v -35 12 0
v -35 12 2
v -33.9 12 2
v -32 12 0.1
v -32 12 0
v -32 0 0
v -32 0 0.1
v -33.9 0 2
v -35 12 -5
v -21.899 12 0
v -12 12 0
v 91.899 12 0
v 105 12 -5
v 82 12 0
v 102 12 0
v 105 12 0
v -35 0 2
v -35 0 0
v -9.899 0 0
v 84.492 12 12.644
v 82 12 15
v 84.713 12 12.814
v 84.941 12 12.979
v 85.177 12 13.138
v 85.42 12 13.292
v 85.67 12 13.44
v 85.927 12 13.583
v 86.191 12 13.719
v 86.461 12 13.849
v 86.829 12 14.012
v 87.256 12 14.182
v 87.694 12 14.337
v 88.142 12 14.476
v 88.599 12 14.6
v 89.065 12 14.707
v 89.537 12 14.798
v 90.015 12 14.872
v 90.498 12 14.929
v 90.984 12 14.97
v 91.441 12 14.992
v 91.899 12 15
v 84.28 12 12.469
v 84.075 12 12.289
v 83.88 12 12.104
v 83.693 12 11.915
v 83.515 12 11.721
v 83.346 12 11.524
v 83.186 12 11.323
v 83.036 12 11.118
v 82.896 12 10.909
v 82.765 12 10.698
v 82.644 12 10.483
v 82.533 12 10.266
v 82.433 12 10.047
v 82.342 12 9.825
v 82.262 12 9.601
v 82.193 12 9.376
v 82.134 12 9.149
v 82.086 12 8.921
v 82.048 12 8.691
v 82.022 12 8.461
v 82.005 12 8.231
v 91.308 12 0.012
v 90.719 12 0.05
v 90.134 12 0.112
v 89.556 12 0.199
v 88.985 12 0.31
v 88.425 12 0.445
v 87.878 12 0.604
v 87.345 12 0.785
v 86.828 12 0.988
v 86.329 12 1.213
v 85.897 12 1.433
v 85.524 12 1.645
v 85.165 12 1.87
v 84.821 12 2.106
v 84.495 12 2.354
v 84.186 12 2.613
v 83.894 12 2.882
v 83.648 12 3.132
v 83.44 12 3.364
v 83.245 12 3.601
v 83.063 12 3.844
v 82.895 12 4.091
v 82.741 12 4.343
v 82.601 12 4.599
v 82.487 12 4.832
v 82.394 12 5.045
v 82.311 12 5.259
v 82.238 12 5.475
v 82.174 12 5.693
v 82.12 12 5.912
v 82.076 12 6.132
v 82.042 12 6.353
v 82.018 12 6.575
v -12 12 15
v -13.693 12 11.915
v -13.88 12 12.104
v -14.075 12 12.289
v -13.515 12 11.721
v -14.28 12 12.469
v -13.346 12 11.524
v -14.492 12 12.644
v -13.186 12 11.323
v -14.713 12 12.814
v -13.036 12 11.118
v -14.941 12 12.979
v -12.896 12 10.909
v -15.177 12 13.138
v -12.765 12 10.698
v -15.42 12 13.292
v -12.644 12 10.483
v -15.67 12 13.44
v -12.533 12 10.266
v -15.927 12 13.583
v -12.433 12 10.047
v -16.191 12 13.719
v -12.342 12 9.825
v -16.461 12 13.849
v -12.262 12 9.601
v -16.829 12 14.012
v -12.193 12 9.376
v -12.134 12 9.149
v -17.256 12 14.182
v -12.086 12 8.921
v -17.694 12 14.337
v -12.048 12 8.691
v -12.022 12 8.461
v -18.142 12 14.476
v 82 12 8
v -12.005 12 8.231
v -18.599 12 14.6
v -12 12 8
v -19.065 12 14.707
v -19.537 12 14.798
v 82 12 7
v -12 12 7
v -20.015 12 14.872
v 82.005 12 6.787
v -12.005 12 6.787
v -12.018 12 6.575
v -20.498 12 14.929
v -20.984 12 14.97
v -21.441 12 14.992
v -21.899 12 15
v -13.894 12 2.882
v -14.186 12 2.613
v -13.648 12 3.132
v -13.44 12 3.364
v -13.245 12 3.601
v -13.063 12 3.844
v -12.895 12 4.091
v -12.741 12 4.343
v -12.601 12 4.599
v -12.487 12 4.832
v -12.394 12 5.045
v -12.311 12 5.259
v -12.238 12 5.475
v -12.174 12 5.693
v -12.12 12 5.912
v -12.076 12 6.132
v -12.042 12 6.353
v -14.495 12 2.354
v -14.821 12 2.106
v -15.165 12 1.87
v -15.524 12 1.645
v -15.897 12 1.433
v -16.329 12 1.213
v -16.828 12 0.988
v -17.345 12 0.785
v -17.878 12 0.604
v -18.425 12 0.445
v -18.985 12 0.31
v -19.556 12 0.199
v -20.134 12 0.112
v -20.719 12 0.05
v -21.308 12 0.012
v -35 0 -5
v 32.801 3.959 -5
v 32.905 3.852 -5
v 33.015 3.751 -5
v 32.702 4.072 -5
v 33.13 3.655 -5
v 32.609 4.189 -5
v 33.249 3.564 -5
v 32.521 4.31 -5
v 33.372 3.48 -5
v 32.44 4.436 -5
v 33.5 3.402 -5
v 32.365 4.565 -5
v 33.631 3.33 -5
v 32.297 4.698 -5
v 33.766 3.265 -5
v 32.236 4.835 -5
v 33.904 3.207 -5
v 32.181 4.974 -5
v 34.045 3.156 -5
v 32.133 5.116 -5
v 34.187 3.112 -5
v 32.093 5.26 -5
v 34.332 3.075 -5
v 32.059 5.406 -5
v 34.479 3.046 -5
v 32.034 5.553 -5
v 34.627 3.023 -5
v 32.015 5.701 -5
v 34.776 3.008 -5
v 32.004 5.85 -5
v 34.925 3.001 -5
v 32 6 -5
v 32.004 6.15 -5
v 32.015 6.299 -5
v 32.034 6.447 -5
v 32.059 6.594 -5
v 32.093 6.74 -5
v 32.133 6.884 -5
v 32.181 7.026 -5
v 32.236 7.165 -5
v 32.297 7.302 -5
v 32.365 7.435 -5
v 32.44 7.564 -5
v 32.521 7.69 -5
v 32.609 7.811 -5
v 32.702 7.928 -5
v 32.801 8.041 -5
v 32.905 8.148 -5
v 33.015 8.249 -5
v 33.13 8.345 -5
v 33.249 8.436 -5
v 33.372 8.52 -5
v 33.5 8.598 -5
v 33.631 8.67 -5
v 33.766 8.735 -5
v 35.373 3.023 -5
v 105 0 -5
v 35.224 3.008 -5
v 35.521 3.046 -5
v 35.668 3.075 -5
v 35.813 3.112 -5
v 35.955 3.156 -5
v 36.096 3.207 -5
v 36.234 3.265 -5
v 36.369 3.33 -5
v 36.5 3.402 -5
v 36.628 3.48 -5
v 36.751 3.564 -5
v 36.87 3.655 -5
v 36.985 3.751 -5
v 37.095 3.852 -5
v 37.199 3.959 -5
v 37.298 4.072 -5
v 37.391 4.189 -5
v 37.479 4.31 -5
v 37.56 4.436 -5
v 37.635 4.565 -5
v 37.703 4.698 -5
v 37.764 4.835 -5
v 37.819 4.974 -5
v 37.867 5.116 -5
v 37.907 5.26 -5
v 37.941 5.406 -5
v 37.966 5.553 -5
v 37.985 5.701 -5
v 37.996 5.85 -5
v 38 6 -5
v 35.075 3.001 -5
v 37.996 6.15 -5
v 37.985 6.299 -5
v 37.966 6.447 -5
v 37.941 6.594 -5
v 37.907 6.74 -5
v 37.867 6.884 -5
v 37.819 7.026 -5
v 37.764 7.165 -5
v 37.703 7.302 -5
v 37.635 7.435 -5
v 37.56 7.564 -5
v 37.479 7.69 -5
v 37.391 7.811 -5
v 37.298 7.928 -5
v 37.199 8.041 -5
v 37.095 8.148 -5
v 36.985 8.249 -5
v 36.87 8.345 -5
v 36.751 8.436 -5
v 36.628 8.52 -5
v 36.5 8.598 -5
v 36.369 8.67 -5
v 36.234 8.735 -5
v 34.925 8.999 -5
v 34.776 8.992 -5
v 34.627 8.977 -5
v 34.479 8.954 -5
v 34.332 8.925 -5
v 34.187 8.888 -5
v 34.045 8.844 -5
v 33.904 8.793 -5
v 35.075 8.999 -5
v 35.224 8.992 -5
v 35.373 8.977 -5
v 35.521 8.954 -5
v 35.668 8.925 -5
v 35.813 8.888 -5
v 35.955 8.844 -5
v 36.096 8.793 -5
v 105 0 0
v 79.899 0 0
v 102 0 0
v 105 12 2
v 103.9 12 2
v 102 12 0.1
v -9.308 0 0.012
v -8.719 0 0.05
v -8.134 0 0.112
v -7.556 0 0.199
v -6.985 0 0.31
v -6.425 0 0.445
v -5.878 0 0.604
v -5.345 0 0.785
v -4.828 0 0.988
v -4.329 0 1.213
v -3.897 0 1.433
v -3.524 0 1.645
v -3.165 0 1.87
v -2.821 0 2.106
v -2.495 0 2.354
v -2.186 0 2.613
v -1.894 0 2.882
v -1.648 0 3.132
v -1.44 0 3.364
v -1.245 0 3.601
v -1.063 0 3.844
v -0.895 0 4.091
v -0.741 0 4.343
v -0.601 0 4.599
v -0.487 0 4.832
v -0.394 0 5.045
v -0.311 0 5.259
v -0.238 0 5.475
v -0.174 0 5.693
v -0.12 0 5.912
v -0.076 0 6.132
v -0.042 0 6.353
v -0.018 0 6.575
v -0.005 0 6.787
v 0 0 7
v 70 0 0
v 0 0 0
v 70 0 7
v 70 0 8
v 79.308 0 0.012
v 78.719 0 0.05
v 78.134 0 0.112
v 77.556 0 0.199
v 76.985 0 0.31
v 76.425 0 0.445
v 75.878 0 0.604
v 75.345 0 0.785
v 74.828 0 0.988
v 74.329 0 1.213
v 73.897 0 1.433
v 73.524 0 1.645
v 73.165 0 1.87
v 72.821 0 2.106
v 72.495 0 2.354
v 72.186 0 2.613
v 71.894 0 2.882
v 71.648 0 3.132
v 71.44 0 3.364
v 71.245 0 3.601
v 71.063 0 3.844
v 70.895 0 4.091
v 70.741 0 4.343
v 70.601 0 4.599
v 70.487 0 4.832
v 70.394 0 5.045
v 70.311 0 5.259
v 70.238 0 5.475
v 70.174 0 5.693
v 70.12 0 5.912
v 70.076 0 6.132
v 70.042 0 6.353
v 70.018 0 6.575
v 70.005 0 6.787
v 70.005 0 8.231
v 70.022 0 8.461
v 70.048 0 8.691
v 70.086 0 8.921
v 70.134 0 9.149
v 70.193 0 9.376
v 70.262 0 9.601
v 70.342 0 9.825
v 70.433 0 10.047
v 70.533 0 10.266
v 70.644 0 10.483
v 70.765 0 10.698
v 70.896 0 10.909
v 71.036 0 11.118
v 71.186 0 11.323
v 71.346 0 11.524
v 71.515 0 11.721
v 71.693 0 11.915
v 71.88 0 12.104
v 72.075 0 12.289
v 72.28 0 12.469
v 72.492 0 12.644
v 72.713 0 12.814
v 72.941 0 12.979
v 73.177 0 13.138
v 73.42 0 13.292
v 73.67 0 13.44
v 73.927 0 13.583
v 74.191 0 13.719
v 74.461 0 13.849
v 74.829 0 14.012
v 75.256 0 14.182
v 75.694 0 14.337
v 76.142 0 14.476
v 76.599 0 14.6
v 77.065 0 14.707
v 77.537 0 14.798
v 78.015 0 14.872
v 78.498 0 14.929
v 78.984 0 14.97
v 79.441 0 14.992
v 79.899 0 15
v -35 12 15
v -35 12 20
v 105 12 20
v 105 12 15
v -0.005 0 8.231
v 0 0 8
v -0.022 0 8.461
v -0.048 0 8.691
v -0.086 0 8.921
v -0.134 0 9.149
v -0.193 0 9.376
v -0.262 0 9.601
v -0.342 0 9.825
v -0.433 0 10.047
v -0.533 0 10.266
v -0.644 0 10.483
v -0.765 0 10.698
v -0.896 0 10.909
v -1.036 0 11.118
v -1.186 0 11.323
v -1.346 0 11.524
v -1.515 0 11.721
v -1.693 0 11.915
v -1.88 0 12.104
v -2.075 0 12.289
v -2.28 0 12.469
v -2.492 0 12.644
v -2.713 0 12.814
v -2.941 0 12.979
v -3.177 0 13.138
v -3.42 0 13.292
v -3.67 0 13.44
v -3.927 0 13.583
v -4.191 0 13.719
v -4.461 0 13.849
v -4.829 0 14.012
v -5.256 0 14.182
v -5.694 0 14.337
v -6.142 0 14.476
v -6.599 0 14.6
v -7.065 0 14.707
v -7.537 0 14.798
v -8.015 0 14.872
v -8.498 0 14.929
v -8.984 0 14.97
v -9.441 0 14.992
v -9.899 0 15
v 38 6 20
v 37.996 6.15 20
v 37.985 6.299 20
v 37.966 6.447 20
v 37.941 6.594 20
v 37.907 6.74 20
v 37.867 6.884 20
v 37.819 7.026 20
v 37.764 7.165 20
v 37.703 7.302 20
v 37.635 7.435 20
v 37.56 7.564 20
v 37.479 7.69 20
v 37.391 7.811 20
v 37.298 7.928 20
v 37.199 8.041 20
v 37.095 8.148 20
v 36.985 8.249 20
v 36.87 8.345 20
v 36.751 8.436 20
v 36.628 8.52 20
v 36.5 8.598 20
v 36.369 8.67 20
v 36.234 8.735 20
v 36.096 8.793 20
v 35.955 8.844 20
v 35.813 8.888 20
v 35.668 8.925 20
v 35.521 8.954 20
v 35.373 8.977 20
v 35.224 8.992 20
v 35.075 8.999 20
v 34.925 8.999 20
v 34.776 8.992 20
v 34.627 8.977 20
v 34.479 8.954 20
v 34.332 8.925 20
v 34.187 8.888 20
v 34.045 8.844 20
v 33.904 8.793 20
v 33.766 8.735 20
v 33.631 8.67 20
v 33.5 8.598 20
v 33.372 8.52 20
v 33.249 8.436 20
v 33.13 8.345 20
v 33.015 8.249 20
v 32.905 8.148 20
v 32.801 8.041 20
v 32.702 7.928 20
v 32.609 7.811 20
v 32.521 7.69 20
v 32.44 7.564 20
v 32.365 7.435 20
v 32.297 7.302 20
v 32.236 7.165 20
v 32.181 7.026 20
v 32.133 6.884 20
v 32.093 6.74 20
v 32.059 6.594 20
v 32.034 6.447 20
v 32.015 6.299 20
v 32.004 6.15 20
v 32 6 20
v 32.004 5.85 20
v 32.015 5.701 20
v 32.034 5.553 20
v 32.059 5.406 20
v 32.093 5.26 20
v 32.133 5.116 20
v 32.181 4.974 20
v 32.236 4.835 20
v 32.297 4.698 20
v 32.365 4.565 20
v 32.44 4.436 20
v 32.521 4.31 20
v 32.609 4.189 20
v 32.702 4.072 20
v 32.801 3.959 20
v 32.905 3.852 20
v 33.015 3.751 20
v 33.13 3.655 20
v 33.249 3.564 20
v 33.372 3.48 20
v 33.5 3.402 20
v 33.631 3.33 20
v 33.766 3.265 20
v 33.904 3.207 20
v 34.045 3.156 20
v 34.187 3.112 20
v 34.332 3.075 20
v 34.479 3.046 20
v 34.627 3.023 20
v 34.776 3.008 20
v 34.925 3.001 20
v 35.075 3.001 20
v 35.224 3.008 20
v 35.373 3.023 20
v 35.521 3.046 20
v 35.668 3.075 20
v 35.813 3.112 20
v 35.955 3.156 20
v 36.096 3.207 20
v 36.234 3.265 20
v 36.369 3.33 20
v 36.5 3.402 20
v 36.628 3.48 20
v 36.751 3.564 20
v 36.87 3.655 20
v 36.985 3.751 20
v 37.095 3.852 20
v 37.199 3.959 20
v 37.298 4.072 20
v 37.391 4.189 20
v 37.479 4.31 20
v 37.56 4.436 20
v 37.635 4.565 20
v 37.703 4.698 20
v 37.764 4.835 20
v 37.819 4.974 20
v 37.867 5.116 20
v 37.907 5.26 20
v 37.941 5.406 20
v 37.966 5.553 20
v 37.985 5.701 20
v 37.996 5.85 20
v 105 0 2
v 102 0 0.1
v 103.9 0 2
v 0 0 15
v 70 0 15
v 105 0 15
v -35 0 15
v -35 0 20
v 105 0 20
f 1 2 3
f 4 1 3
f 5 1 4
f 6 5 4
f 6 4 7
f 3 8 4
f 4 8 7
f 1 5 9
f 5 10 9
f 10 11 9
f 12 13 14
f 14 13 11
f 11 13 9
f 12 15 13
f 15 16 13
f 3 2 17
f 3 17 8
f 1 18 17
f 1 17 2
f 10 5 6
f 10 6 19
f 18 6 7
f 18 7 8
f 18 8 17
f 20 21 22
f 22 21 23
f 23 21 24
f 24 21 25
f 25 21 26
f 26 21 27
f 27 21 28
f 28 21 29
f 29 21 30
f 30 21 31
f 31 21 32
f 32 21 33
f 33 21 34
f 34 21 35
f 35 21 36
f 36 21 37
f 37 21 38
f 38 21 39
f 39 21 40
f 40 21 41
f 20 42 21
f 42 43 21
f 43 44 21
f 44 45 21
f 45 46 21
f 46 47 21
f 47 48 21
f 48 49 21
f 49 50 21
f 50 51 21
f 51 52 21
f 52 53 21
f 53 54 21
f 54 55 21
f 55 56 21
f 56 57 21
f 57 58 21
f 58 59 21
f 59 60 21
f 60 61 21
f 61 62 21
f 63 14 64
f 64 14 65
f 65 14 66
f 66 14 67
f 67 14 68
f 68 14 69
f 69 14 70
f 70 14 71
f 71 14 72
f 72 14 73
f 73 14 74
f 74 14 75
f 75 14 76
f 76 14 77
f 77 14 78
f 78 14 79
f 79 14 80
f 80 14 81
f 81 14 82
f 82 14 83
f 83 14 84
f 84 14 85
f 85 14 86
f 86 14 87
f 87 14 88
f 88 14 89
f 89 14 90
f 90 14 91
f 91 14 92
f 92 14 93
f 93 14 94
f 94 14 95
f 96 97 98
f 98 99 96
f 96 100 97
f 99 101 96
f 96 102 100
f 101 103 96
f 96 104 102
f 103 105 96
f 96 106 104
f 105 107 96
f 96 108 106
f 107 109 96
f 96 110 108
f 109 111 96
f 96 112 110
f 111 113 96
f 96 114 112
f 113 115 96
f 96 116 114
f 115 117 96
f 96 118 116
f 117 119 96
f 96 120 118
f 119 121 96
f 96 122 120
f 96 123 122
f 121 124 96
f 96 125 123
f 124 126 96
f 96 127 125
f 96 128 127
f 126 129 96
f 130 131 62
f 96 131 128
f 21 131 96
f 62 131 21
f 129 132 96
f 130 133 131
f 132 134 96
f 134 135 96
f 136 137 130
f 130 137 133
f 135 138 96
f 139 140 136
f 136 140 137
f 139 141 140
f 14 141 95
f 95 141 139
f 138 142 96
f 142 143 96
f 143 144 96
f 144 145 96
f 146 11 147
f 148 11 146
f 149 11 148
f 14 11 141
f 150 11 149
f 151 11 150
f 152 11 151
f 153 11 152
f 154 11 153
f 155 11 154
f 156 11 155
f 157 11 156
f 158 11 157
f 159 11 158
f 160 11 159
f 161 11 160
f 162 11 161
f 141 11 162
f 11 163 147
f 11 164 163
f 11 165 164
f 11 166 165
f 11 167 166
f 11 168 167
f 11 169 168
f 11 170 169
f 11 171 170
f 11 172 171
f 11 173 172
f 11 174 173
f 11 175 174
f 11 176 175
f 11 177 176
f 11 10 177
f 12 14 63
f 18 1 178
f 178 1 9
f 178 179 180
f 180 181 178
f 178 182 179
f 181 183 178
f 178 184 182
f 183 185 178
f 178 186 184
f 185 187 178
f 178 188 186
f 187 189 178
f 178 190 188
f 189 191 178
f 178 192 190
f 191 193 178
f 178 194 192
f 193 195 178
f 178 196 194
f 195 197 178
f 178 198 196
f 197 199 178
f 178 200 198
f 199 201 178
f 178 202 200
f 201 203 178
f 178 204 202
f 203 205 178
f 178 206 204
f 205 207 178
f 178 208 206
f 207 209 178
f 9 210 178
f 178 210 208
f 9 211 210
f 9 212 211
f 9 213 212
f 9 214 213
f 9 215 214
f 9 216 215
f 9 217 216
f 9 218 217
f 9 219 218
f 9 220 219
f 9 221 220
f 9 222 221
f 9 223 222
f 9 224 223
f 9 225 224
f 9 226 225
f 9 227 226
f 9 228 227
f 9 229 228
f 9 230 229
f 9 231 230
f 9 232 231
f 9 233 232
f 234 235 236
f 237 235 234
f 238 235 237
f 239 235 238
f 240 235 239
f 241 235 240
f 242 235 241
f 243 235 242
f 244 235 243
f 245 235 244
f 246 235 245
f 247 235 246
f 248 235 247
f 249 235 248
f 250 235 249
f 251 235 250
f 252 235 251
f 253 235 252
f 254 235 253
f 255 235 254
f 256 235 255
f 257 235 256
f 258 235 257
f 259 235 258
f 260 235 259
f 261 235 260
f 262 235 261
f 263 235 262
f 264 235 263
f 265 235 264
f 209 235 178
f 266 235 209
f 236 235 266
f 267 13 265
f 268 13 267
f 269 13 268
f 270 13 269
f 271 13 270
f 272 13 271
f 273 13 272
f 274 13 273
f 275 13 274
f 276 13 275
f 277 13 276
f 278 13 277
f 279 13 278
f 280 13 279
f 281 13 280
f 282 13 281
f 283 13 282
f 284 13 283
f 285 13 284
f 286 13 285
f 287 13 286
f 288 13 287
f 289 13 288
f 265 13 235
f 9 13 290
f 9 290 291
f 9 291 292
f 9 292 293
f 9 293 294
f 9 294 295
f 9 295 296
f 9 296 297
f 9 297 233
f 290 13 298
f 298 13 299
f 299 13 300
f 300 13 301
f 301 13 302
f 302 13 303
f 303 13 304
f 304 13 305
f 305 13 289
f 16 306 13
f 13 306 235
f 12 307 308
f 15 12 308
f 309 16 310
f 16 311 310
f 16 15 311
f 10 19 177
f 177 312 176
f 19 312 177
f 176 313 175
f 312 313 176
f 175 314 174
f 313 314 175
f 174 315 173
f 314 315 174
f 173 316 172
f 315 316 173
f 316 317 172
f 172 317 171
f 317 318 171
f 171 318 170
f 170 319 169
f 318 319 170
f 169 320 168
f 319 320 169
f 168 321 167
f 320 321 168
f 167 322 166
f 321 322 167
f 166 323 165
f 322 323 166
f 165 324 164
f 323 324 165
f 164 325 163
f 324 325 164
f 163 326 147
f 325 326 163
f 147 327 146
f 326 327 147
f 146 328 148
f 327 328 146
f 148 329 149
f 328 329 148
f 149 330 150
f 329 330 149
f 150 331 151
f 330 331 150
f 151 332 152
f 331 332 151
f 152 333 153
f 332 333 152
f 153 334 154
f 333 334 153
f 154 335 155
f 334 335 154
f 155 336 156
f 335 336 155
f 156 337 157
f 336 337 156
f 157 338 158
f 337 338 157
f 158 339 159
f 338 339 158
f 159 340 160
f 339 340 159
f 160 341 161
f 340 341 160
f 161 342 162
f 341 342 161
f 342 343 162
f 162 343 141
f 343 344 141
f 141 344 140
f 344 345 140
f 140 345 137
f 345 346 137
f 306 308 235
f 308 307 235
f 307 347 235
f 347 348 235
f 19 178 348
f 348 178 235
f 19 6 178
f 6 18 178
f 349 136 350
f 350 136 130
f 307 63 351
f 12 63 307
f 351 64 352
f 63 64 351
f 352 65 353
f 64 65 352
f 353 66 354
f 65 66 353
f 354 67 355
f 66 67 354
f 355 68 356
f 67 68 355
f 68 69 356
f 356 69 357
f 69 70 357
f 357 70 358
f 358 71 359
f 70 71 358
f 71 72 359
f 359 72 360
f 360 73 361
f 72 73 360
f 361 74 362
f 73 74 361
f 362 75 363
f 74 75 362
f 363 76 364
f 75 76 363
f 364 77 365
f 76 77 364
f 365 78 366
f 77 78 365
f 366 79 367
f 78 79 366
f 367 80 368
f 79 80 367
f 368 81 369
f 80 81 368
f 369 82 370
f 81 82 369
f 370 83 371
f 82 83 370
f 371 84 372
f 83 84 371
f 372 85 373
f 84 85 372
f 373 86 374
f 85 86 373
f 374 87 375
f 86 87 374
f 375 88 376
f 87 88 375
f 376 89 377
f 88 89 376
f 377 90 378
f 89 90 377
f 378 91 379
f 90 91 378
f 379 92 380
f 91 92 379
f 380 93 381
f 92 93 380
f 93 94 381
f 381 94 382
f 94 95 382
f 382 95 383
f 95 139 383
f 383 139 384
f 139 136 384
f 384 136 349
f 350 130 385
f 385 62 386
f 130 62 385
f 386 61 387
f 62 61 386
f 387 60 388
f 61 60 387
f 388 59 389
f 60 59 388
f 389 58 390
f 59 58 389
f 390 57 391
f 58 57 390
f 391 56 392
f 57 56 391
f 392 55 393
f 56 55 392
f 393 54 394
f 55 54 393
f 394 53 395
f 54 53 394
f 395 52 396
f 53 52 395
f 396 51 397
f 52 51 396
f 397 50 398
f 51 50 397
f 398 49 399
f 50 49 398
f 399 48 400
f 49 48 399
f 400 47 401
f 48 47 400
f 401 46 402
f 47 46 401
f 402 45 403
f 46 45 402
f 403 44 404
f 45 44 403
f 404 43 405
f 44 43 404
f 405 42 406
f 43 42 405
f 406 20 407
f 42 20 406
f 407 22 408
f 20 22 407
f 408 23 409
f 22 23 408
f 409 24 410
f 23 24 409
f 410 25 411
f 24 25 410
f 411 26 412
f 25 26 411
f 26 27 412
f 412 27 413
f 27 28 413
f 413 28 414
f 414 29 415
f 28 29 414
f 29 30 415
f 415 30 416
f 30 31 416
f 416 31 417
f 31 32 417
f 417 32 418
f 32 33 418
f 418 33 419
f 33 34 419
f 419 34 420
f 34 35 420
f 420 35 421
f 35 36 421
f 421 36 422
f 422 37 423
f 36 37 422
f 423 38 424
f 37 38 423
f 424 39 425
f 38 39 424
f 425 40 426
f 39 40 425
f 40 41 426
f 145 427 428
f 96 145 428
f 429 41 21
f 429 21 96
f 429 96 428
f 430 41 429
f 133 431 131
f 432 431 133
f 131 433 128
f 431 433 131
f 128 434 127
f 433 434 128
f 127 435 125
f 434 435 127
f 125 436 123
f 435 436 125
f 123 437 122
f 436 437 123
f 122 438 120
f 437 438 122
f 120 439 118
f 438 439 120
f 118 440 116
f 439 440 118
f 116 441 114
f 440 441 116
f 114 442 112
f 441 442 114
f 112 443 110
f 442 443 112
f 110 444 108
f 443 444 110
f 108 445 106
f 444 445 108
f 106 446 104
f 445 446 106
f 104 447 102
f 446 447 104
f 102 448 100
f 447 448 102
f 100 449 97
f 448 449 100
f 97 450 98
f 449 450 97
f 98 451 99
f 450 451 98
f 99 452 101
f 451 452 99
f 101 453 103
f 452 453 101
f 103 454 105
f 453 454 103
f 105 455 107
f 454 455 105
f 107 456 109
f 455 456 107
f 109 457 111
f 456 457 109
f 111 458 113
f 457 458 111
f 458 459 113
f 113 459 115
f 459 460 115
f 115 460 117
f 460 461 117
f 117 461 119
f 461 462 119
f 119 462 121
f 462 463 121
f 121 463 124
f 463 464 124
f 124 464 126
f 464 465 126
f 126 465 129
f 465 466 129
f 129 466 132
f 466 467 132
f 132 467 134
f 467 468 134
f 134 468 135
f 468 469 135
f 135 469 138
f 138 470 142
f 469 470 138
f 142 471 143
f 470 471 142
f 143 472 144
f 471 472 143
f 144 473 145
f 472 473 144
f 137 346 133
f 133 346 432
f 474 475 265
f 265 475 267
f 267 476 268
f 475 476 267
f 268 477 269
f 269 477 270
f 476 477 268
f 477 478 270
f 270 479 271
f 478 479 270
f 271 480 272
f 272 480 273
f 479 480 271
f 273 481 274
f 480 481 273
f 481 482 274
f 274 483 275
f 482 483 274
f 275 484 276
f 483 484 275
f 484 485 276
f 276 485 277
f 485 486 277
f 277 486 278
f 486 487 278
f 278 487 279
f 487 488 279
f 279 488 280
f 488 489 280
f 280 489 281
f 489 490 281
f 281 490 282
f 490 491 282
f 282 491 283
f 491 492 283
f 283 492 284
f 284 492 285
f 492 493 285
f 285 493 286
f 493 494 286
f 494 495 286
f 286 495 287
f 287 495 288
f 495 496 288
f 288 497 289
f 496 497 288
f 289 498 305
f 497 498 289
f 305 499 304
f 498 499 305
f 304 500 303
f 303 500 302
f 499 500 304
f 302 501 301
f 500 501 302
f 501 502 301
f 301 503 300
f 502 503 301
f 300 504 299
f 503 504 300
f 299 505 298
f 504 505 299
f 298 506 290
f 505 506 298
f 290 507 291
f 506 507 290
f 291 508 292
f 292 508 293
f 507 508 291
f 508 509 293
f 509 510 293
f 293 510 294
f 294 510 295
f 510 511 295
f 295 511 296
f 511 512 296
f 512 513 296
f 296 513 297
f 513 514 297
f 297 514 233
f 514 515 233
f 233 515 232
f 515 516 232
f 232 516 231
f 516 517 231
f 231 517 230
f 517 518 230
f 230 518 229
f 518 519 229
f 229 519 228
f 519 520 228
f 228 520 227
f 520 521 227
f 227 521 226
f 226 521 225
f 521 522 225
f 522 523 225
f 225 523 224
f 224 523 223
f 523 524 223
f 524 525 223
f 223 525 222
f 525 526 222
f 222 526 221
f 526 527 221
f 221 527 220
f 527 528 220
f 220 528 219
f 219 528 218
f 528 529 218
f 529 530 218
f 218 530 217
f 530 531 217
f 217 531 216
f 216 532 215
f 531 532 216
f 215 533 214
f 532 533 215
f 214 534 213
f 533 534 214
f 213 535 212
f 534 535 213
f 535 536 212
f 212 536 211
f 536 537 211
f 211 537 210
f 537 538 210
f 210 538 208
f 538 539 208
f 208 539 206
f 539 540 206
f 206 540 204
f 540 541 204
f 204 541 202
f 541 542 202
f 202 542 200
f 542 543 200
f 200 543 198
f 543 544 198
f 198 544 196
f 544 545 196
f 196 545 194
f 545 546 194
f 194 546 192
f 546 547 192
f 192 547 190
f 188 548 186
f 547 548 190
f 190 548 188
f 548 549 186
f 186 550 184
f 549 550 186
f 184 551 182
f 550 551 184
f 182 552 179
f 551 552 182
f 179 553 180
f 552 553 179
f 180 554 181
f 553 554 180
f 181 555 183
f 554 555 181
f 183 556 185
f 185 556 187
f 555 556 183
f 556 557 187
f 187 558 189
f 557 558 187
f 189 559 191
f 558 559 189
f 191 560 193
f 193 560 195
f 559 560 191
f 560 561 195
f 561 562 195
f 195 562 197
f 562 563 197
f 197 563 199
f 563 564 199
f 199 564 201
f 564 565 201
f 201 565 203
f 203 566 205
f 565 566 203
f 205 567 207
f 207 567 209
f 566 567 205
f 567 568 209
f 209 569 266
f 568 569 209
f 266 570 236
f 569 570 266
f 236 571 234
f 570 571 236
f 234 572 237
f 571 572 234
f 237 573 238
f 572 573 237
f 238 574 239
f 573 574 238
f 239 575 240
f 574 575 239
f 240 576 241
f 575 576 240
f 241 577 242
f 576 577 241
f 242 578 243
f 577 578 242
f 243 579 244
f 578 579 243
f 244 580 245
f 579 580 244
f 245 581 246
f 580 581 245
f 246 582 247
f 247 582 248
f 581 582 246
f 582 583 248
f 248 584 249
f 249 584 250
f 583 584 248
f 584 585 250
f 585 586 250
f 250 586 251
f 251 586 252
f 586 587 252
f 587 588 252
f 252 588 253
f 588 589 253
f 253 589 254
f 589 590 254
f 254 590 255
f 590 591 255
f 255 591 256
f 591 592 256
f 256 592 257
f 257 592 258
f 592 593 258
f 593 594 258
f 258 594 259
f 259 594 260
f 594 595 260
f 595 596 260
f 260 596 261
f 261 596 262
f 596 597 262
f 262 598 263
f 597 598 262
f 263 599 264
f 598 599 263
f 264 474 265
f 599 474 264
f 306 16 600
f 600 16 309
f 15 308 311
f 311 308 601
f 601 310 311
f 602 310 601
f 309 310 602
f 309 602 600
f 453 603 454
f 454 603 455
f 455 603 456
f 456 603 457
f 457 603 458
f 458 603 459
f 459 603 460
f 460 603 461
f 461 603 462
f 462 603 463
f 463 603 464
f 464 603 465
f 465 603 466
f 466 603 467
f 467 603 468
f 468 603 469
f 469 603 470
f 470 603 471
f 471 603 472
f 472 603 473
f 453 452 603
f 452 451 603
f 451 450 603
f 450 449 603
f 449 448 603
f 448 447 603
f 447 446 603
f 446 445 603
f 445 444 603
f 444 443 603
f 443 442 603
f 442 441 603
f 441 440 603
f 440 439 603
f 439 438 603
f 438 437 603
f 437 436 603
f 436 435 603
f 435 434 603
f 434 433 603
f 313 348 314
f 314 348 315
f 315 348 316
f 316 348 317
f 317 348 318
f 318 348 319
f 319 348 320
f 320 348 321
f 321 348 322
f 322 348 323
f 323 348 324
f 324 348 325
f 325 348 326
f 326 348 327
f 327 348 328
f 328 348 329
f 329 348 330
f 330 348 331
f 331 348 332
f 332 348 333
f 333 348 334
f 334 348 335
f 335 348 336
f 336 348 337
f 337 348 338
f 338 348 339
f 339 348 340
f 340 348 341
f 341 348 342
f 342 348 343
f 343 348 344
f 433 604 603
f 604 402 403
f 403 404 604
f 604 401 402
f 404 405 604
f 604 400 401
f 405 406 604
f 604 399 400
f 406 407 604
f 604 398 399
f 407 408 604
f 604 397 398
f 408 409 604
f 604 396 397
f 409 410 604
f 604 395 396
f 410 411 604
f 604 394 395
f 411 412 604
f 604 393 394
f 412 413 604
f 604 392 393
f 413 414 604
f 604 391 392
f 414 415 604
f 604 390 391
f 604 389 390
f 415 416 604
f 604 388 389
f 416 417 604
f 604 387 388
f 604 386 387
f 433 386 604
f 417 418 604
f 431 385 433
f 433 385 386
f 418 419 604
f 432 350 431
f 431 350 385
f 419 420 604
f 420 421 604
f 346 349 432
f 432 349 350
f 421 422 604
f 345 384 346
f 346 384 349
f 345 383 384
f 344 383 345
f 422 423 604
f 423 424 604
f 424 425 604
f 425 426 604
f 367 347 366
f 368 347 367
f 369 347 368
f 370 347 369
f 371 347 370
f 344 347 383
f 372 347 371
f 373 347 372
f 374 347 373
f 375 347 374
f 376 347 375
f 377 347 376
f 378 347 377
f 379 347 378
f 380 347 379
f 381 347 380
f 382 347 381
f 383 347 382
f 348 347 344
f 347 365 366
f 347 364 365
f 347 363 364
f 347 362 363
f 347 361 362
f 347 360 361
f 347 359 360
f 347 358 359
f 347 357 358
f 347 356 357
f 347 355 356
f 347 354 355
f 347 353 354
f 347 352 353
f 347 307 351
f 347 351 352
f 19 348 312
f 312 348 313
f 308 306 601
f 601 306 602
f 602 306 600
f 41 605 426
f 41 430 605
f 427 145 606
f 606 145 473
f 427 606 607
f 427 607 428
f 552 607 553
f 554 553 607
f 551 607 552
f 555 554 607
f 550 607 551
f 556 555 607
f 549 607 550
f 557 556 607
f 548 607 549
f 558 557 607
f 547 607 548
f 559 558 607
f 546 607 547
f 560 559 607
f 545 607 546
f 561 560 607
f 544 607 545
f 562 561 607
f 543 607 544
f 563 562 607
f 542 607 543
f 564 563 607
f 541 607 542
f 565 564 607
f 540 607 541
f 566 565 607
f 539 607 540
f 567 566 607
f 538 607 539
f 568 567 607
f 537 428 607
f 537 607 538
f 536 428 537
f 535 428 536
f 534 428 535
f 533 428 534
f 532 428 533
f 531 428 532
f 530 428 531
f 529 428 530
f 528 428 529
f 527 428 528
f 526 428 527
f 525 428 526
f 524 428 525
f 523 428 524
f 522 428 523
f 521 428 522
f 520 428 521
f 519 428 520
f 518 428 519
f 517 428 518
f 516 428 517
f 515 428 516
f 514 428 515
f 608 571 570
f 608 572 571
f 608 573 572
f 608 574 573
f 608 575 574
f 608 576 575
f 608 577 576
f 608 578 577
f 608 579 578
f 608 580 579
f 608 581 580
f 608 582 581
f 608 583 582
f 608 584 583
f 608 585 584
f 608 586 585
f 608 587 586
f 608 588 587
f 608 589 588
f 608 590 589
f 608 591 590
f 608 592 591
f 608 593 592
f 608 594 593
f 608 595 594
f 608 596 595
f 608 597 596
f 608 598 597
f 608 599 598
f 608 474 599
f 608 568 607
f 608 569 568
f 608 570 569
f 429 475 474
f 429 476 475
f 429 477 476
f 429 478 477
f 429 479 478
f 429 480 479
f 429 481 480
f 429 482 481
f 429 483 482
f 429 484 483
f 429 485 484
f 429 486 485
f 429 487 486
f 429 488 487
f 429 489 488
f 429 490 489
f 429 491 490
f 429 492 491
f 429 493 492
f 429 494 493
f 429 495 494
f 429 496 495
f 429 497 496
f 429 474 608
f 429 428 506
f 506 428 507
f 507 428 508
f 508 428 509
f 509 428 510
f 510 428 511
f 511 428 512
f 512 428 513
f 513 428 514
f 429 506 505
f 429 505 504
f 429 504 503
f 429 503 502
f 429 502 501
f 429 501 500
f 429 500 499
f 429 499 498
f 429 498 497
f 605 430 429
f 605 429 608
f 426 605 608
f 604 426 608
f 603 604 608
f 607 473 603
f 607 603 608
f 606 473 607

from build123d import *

# Parameters (mm, degrees)
PAD_DEPTH    = 15
SKETCH001_W  = 140
SKETCH001_H  = 12
PAD001_DEPTH = 5
SKETCH002_W  = 140
SKETCH002_H  = 12
PAD002_DEPTH = 5
FILLET_R     = 7
SKETCH003_R  = 3
POCKET_DEPTH = 25.001
SKETCH004_W  = 3
SKETCH004_H  = 12
PAD003_DEPTH = 2
CHAMFER_SIZE = 1.9


with BuildPart() as part:
    # Sketch → Pad (new body)
    with BuildSketch(Plane.XY):
        Polygon((0, 0), (70, 0), (82, 12), (-12, 12), align=None)
    extrude(amount=PAD_DEPTH)

    # Sketch001 (on Face6 of Pad) → Pad001 (join)
    with BuildSketch(Plane.XY.offset(15)):
        with Locations((35, 6)):
            Rectangle(SKETCH001_W, SKETCH001_H)
    extrude(amount=PAD001_DEPTH)

    # Sketch002 (on Face11 of Pad001) → Pad002 (join)
    with BuildSketch(Plane(origin=(0, 0, 0), x_dir=(1, 0, 0), z_dir=(0, 0, -1))):
        with Locations((35, -6)):
            Rectangle(SKETCH002_W, SKETCH002_H)
    extrude(amount=PAD002_DEPTH)

    # Fillet
    fillet_edges = [part.edges().sort_by_distance(p)[0] for p in [
        (76, 6, 15),
        (-6, 6, 15),
        (-6, 6, 0),
        (76, 6, 0),
    ]]
    fillet(fillet_edges, radius=FILLET_R)

    # Sketch003 (on Face20 of Fillet) → Pocket (cut, through all)
    with BuildSketch(Plane.XY.offset(20)):
        with Locations((35, 6)):
            Circle(SKETCH003_R)
    extrude(amount=-POCKET_DEPTH, mode=Mode.SUBTRACT)

    # Sketch004 (on Face7 of Pocket) → Pad003 (join)
    with BuildSketch(Plane.XY):
        with Locations((-33.5, 6)):
            Rectangle(SKETCH004_W, SKETCH004_H)
        with Locations((103.5, 6)):
            Rectangle(SKETCH004_W, SKETCH004_H)
    extrude(amount=PAD003_DEPTH)

    # Chamfer
    chamfer_edges = [part.edges().sort_by_distance(p)[0] for p in [
        (-32, 6, 2),
        (102, 6, 2),
    ]]
    chamfer(chamfer_edges, length=CHAMFER_SIZE)


solid = part.part
